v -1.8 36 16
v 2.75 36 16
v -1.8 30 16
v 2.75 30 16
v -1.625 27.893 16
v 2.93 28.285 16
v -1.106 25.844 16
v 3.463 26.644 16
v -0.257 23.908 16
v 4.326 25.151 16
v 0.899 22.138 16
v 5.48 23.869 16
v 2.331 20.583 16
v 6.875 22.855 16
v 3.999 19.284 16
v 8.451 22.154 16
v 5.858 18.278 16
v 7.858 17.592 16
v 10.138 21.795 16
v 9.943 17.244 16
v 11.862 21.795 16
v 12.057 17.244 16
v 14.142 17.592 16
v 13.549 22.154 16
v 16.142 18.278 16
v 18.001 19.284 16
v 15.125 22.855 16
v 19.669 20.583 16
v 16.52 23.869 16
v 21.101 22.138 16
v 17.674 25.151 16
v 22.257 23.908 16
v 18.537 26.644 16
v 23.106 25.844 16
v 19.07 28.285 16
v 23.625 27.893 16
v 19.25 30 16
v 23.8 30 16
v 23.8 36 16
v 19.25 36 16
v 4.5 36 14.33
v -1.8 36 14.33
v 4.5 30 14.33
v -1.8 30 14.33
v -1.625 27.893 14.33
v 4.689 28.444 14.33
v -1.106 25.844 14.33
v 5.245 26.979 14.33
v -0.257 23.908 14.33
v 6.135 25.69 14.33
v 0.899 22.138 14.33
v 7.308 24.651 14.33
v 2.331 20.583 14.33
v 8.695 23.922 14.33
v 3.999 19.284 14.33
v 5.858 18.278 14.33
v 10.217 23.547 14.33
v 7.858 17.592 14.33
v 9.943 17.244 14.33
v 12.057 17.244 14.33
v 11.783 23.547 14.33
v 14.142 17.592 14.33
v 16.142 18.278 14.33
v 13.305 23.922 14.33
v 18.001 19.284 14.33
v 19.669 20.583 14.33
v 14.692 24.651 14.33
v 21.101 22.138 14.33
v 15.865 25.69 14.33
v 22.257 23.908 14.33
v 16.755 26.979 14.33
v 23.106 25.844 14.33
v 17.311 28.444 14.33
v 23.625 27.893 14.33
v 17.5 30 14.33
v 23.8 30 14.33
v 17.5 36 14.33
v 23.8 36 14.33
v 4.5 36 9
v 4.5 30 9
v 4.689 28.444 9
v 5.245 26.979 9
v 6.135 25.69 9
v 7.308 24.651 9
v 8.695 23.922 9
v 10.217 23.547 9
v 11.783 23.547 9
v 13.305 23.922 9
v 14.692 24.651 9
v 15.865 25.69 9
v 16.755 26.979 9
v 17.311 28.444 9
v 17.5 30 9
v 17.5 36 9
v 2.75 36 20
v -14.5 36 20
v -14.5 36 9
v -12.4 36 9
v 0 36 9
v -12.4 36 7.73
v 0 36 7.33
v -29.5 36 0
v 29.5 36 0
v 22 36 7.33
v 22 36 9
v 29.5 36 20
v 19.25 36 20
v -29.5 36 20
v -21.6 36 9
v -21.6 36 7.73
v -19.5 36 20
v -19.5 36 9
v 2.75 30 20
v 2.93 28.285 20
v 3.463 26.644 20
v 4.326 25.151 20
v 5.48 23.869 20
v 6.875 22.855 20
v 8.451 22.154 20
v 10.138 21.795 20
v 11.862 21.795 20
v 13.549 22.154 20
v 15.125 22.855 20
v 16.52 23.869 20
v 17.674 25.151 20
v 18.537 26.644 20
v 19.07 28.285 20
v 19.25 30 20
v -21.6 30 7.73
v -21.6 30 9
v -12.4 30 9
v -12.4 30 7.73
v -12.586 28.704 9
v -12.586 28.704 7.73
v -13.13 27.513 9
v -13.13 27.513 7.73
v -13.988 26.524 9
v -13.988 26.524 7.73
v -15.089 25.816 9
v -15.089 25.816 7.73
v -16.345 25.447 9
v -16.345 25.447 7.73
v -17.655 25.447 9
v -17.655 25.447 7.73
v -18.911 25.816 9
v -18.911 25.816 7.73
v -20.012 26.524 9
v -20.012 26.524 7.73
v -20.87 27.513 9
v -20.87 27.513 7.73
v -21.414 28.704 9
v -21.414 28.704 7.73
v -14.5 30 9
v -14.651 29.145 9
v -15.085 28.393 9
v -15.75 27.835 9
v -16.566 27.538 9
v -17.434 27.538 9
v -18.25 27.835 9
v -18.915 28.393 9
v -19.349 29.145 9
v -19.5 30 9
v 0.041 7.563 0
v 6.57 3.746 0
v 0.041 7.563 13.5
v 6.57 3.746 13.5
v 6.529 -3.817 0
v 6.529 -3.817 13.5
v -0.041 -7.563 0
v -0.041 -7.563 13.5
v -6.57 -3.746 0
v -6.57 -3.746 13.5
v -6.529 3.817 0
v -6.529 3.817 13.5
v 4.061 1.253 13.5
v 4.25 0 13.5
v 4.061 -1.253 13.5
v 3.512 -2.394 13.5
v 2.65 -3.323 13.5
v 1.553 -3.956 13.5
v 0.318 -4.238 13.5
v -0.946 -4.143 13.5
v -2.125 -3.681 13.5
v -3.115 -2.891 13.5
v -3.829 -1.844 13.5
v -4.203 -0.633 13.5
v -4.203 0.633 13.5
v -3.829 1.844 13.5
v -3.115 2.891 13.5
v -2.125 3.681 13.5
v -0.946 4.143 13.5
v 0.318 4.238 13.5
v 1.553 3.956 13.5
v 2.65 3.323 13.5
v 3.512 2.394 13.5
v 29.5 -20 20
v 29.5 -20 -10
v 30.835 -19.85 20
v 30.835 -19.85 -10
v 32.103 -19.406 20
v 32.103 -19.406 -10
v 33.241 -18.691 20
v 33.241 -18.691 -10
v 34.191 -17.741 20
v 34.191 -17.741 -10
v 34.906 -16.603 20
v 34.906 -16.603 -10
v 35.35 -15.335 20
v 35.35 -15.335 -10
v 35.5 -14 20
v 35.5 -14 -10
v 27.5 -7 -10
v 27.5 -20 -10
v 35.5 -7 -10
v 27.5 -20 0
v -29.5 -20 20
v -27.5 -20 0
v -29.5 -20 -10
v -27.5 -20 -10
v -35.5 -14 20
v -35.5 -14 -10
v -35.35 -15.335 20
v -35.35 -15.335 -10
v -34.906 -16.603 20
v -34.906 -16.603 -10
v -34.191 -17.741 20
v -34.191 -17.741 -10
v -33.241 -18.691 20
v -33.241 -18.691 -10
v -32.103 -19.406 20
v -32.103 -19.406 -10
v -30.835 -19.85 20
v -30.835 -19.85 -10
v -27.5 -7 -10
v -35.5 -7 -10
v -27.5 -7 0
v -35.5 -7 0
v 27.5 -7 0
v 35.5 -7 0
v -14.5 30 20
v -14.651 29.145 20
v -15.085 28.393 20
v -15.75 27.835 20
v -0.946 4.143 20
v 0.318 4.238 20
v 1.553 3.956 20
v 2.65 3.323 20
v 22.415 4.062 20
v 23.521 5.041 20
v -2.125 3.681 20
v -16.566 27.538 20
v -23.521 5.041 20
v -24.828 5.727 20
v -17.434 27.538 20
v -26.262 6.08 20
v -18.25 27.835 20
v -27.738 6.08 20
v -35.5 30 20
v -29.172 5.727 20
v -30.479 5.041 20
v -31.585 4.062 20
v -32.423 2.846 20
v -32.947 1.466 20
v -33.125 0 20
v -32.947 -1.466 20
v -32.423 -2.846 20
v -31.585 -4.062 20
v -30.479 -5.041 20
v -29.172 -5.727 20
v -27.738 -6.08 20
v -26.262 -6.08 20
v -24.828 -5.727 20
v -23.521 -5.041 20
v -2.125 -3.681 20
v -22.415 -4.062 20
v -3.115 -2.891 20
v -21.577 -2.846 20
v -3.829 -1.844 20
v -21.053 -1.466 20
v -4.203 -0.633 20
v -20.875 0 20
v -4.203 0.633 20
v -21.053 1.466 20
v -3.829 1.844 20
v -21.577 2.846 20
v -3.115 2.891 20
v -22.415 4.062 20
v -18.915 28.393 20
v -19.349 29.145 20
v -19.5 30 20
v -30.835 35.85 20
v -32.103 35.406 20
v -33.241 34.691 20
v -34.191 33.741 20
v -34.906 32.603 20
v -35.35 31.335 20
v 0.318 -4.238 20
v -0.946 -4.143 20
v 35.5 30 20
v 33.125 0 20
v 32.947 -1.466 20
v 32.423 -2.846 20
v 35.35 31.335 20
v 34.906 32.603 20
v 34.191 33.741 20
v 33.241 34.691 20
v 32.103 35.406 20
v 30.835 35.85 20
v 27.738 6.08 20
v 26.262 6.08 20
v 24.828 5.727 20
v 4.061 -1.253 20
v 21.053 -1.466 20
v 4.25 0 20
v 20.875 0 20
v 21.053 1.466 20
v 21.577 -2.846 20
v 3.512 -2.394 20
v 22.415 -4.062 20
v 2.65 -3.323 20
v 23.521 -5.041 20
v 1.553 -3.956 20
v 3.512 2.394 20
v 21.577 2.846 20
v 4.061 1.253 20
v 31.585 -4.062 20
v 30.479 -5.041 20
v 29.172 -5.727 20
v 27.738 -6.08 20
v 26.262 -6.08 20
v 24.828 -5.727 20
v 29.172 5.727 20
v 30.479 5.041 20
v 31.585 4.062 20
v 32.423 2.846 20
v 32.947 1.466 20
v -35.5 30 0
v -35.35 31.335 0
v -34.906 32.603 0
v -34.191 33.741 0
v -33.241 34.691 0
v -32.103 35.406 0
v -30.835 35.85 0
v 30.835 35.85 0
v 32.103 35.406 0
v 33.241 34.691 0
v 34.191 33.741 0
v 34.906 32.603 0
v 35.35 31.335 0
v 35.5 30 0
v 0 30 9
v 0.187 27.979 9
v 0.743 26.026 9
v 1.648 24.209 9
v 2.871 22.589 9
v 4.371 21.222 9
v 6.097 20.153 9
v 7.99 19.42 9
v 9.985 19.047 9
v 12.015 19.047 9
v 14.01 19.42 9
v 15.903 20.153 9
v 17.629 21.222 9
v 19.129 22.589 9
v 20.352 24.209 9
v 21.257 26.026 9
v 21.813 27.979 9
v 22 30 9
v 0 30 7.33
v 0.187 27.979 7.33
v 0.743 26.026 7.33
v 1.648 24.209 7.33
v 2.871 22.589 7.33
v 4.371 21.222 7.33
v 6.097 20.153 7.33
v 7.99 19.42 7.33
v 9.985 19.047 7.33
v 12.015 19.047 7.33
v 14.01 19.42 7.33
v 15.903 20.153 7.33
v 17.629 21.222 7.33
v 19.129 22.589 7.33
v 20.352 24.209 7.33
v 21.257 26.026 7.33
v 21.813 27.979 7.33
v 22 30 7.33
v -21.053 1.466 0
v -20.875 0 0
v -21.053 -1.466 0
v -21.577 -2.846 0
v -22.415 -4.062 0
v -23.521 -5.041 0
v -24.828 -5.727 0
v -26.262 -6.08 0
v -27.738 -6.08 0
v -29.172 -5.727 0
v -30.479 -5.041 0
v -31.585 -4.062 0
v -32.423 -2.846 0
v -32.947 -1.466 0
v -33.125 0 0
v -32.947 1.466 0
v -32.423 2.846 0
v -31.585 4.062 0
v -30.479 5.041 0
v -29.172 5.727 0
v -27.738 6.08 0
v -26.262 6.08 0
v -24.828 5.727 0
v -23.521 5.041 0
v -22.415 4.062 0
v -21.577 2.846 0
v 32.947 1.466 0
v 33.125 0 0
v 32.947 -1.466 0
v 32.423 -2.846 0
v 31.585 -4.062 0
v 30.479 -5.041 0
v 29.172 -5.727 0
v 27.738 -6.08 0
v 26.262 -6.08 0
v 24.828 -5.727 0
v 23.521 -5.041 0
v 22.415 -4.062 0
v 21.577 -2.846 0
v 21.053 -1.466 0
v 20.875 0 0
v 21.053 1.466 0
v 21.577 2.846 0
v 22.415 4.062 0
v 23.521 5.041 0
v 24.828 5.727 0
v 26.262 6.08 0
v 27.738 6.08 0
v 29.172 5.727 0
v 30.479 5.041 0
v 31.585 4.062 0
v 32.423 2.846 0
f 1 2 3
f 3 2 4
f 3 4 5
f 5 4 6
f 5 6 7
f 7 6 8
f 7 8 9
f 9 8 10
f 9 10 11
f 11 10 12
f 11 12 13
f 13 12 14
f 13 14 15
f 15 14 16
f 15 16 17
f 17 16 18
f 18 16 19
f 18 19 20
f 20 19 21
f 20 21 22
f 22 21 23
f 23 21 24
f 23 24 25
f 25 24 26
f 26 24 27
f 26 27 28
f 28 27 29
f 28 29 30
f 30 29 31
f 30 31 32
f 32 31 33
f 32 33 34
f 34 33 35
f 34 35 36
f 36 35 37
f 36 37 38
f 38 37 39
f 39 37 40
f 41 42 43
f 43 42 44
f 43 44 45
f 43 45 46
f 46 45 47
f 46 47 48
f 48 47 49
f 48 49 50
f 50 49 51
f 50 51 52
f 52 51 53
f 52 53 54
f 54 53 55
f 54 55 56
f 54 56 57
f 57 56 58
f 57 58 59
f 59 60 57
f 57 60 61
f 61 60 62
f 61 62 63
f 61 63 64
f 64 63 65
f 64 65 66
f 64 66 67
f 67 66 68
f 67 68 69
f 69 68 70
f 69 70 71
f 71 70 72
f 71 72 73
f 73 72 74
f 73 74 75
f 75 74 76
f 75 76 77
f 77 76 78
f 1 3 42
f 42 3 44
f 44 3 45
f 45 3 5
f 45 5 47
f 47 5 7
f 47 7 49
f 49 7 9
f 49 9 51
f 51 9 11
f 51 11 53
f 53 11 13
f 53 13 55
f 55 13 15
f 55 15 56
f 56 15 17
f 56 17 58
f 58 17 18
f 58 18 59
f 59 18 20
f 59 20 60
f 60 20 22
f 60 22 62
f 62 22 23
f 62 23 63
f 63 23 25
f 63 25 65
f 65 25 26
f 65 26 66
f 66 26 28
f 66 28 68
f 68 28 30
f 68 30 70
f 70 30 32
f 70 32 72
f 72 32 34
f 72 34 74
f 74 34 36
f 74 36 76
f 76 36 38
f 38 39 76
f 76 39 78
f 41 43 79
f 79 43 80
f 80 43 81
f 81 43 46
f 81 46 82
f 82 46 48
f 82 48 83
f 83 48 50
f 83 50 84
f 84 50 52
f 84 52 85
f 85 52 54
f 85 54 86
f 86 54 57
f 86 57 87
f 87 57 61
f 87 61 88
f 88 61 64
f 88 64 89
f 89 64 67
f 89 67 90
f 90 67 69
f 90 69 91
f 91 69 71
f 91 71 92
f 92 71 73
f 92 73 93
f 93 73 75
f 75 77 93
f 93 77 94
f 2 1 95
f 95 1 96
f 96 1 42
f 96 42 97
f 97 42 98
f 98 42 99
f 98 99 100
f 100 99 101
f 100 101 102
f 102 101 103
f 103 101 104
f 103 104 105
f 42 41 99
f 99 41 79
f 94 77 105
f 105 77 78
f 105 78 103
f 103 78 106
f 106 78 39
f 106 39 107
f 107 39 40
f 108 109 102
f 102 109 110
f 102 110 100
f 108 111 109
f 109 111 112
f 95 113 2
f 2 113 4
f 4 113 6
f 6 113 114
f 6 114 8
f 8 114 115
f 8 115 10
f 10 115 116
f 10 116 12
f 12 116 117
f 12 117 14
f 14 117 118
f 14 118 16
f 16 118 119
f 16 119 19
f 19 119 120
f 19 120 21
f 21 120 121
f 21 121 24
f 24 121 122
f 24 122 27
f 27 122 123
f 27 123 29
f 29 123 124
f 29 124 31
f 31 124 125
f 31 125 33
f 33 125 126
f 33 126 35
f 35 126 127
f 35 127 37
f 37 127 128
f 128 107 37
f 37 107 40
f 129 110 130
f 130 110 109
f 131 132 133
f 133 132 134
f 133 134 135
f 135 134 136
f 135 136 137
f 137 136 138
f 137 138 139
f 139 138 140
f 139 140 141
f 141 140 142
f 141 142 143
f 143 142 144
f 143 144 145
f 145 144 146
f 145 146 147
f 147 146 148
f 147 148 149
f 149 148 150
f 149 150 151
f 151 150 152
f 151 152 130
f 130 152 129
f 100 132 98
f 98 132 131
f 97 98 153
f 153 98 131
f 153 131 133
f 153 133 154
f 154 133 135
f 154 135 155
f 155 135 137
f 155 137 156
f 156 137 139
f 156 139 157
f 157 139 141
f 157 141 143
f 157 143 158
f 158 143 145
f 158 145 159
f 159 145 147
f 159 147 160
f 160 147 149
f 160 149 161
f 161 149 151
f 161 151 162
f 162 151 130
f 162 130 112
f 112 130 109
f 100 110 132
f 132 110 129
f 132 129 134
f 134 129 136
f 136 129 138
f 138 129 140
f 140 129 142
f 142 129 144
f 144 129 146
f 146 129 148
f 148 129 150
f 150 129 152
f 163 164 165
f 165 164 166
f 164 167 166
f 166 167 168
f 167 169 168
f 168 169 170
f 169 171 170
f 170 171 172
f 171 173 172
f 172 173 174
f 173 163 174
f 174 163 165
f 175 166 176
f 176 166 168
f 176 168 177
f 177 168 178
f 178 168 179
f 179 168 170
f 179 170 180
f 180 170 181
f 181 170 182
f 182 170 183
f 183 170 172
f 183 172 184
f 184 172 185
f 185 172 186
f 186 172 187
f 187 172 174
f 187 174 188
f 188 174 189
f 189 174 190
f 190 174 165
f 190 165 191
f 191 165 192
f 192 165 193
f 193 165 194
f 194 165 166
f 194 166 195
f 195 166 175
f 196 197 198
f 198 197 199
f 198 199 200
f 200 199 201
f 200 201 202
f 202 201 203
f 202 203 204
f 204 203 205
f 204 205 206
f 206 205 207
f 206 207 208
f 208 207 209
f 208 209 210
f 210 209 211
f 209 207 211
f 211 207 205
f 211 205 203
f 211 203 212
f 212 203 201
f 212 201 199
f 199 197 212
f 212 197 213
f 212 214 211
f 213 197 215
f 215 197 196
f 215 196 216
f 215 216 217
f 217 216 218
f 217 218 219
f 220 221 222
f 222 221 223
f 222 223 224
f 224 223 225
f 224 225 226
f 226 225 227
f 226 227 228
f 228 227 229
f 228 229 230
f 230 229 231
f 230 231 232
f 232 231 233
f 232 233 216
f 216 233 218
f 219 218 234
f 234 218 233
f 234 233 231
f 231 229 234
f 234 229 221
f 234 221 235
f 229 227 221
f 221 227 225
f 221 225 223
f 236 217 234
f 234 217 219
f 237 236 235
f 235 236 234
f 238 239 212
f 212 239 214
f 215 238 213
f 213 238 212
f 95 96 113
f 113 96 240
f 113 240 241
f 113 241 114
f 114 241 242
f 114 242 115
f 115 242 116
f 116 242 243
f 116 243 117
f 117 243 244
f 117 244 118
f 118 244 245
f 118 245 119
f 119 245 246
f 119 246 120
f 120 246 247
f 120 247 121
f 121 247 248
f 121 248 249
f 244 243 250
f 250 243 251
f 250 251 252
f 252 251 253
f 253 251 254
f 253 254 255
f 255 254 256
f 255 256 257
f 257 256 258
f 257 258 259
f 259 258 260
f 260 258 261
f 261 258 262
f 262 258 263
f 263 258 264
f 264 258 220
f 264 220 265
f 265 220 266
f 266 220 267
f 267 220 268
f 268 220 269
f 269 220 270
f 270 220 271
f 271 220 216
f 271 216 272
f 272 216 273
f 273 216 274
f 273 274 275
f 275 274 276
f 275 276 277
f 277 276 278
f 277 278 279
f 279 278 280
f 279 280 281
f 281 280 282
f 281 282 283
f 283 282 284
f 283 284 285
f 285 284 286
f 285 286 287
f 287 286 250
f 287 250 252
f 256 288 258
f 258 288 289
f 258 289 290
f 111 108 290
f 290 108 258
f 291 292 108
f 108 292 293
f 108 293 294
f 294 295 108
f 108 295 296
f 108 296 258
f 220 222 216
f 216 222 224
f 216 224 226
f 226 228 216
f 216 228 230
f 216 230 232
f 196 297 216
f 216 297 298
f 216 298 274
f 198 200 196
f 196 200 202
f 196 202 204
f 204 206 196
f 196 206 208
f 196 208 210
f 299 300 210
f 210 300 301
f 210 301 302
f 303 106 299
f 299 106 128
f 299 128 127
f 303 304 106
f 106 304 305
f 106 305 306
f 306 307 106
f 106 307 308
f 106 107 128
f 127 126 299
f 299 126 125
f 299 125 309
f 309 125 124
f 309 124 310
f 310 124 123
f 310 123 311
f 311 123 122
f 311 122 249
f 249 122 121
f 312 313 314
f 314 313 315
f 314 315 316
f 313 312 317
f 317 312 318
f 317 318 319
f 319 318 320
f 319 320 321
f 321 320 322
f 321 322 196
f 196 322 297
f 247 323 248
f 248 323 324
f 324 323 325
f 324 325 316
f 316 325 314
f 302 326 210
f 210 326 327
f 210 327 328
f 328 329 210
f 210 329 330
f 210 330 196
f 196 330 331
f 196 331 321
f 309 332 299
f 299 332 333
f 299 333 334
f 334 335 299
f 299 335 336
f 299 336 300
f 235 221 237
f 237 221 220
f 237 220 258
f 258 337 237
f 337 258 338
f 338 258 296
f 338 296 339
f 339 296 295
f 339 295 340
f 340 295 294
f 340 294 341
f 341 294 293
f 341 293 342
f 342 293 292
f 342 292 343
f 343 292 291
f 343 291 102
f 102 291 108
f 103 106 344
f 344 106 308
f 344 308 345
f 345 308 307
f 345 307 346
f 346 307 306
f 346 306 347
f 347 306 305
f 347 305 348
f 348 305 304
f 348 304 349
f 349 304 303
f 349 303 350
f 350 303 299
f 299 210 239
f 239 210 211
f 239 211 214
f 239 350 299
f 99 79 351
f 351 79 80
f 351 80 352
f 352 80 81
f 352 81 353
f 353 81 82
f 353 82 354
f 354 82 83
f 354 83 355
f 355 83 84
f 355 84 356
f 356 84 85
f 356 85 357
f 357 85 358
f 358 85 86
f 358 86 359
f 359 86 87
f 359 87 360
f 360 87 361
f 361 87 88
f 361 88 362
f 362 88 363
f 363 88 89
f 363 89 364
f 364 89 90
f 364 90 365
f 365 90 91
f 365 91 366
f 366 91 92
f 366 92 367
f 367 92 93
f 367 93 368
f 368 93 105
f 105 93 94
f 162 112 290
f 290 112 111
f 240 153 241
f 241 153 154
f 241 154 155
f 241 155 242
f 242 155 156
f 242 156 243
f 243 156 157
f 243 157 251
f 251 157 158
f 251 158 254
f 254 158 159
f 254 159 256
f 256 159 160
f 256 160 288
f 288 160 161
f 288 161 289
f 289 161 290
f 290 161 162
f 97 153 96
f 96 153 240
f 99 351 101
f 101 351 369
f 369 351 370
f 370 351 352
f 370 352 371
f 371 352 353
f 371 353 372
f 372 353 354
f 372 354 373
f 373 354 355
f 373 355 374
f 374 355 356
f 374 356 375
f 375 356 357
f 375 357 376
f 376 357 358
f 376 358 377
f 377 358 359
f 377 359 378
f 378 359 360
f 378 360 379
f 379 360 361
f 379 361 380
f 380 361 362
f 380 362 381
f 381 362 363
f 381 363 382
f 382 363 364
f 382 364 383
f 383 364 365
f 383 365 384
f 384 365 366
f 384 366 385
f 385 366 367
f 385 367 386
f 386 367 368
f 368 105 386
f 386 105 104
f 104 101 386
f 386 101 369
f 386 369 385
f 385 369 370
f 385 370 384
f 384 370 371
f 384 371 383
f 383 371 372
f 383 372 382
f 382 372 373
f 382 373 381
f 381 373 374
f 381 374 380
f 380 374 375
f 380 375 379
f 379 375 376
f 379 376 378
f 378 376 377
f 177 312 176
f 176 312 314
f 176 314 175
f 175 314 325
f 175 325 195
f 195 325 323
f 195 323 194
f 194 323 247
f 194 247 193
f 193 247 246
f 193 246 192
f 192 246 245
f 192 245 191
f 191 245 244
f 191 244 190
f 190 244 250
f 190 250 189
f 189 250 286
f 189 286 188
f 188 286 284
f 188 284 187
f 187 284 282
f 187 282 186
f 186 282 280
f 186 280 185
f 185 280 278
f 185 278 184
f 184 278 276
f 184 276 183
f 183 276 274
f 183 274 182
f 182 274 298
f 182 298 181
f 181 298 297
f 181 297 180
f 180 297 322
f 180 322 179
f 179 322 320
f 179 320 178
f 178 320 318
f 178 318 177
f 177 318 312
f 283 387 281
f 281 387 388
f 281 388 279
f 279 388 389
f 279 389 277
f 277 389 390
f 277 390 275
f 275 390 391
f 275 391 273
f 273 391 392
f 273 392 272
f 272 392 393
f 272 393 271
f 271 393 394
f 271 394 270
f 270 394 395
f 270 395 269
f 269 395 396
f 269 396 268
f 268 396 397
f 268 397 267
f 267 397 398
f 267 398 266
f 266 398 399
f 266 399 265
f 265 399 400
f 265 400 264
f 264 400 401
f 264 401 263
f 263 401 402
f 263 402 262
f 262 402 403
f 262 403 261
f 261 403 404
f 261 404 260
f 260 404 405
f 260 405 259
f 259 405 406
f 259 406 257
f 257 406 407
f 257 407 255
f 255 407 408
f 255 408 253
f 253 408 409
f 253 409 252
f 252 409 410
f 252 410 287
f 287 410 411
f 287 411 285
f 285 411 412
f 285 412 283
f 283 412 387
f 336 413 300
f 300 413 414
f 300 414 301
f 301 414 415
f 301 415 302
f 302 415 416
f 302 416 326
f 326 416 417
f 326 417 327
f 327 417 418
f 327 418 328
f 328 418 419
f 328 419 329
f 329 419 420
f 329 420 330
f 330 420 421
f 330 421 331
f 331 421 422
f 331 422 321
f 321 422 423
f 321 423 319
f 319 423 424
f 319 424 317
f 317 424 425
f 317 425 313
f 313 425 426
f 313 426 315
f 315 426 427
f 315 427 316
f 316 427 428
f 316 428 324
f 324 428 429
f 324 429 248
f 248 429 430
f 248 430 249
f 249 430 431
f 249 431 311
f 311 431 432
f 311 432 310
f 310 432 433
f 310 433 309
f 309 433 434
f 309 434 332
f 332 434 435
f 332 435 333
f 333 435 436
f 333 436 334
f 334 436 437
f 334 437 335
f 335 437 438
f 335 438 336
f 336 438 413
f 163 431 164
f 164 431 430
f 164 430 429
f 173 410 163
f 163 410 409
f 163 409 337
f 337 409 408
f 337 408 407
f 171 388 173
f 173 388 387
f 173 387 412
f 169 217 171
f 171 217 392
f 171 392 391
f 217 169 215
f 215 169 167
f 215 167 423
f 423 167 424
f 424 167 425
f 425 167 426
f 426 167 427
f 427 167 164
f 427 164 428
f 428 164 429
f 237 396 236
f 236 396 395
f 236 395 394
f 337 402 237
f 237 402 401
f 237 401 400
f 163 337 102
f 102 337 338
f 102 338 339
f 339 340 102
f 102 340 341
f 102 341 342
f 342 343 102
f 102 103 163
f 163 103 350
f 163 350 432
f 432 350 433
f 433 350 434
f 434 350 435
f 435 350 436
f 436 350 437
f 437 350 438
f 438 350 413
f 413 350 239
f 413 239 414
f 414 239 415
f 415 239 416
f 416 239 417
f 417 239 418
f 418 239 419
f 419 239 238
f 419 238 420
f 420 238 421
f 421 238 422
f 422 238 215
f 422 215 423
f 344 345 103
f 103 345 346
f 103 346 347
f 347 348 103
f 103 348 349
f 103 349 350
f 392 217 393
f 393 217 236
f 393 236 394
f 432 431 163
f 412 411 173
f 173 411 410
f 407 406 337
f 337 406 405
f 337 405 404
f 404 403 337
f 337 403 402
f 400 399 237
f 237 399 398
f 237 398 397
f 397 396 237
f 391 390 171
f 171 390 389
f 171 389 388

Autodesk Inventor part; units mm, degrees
ref_plane "YZ Plane" through (0, 0, 0) normal (1, 0, 0) x (0, 1, 0)
ref_plane "XZ Plane" through (0, 0, 0) normal (0, 1, 0) x (-1, 0, 0)
ref_plane "XY Plane" through (0, 0, 0) normal (0, 0, 1) x (1, 0, 0)
sketch "Skizze1" plane through (0, 0, 0) normal (0, 0, 1) x (1, 0, 0)
  line L0 (-35.5, 36) -> (35.5, 36)
  line L1 (35.5, 36) -> (35.5, -20)
  line L2 (35.5, -20) -> (-35.5, -20)
  line L3 (-35.5, -20) -> (-35.5, 36)
  circle A0 centre (0, 0) radius 4.25
  circle A1 centre (-27, 0) radius 6.125
  circle A2 centre (27, 0) radius 6.125
  point P0 (0, -20)
  point P1 (35.5, 8)
  dimension "d0" = 71
  dimension "d1" = 56
  dimension "d2" = 20
  dimension "d3" = 35.5
  dimension "d4" = 8.5
  dimension "d5" = 12.25
  dimension "d6" = 12.25
  dimension "d7" = 27
  dimension "d8" = 27
extrude "Extrusion1" add sketch "Skizze1" along normal blind 9
sketch "Skizze2" plane through (0, 0, 9) normal (0, 0, 1) x (1, 0, 0)
  arc A0 (-22.5, 30) -> (-11.5, 30) centre (-17, 30) ccw
  arc A1 (0, 30) -> (22, 30) centre (11, 30) ccw
  line L0 (35.5, 36) -> (-35.5, 36) projected
  line L1 (-35.5, 36) -> (-35.5, -20) projected
  line L2 (35.5, -20) -> (35.5, 36) projected
  line L3 (-22.5, 30) -> (-22.5, 36)
  line L4 (-11.5, 30) -> (-11.5, 36)
  line L5 (0, 30) -> (0, 36)
  line L6 (22, 30) -> (22, 36)
  point P0 (0, 0)
  dimension "d11" = 11
  dimension "d12" = 22
  dimension "d13" = 6
  dimension "d14" = 6
  dimension "d15" = 18.5
  dimension "d16" = 24.5
extrude "Extrusion2" cut sketch "Skizze2" against normal blind 1.67
sketch "Skizze3" plane through (0, 0, 9) normal (0, 0, 1) x (1, 0, 0)
  line L0 (-22.5, 36) -> (-35.5, 36) projected
  line L1 (35.5, 36) -> (35.5, -20)
  line L2 (35.5, -20) -> (-35.5, -20)
  line L3 (-35.5, -20) -> (-35.5, 36)
  circle A0 centre (-27, 0) radius 6.125
  circle A1 centre (0, 0) radius 4.25
  circle A2 centre (27, 0) radius 6.125
  circle A3 centre (27, 0) radius 6.125 projected
  circle A4 centre (-27, 0) radius 6.125 projected
  arc A5 (-19.5, 30) -> (-14.5, 30) centre (-17, 30) ccw
  arc A6 (-22.5, 30) -> (-11.5, 30) centre (-17, 30) ccw projected
  arc A7 (4.5, 30) -> (17.5, 30) centre (11, 30) ccw
  arc A8 (0, 30) -> (22, 30) centre (11, 30) ccw projected
  line L4 (-19.5, 30) -> (-19.5, 36)
  line L5 (-14.5, 30) -> (-14.5, 36)
  line L6 (4.5, 30) -> (4.5, 36)
  line L7 (17.5, 30) -> (17.5, 36)
  line L8 (17.5, 36) -> (35.5, 36)
  line L9 (-35.5, 36) -> (-19.5, 36)
  line L10 (-14.5, 36) -> (4.5, 36)
  dimension "d19" = 71
  dimension "d20" = 56
  dimension "d21" = 12.25
  dimension "d22" = 12.25
  dimension "d23" = 0
  dimension "d24" = 0
  dimension "d25" = 5
  dimension "d26" = 0
  dimension "d27" = 13
  dimension "d28" = 0
  dimension "d29" = 0
  dimension "d30" = 0
extrude "Extrusion3" add sketch "Skizze3" along normal blind 11
fillet "Rundung1" radius 6 2 edges at (35.5, 36, 10) (-35.5, 36, 10)
fillet "Rundung2" radius 3 2 edges at (-35.5, -20, 10) (35.5, -20, 10)
sketch "Skizze4" plane through (0, 0, 20) normal (0, 0, 1) x (1, 0, 0)
  line L0 (-32.5, -20) -> (32.5, -20) projected
  line L1 (-35.5, 30) -> (-35.5, -17) projected
  line L2 (-27.5, -20) -> (-35.5, -20)
  line L3 (-35.5, -20) -> (-35.5, -7)
  line L4 (-35.5, -7) -> (-27.5, -7)
  line L5 (-27.5, -7) -> (-27.5, -20)
  line L6 (27.5, -20) -> (35.5, -20)
  line L7 (35.5, -20) -> (35.5, -7)
  line L8 (35.5, -7) -> (27.5, -7)
  line L9 (27.5, -7) -> (27.5, -20)
  line L10 (35.5, -17) -> (35.5, 30) projected
  point P0 (0, 0)
  point P1 (-35.5, -17)
  dimension "d35" = 8
  dimension "d36" = 13
  dimension "d37" = 8
  dimension "d38" = 0
sketch "Skizze5" plane through (0, 0, 0) normal (0, 0, -1) x (-1, 0, 0)
  line L0 (32.5, -20) -> (-32.5, -20) projected
  line L1 (35.5, 30) -> (35.5, -17) projected
  line L2 (27.5, -20) -> (35.5, -20)
  line L3 (35.5, -20) -> (35.5, -7)
  line L4 (35.5, -7) -> (27.5, -7)
  line L5 (27.5, -7) -> (27.5, -20)
  line L6 (-35.5, -14) -> (-35.5, -7) projected
  line L7 (-35.5, -7) -> (-27.5, -7)
  line L8 (-27.5, -7) -> (-27.5, -20)
  line L9 (-27.5, -20) -> (-35.5, -20)
  line L10 (-35.5, -20) -> (-35.5, -7)
  point P0 (0, 0)
  point P1 (29.5, -20)
  point P2 (-29.5, -20)
  point P3 (35.5, -14)
  point P4 (29.5, -20)
  point P5 (35.5, -14)
  point P6 (-29.5, -20)
  dimension "d42" = 13
  dimension "d43" = 8
  dimension "d44" = 8
extrude "Extrusion5" add sketch "Skizze5" along normal blind 10
fillet "Rundung4" radius 6 2 edges at (-35.5, -20, -5) (35.5, -20, -5)
sketch "Skizze6" plane through (0, 0, 0) normal (0, 0, -1) x (-1, 0, 0)
  line L0 (6.5705, -3.7459) -> (0.0412, -7.5632)
  line L1 (0.0412, -7.5632) -> (-6.5293, -3.8173)
  line L2 (-6.5293, -3.8173) -> (-6.5705, 3.7459)
  line L3 (-6.5705, 3.7459) -> (-0.0412, 7.5632)
  line L4 (-0.0412, 7.5632) -> (6.5293, 3.8173)
  line L5 (6.5293, 3.8173) -> (6.5705, -3.7459)
  point P0 (0, 0)
  point P1 (0, 0)
  point P2 (-6.5499, -0.0357)
  dimension "d48" = 13.1
extrude "Extrusion6" cut sketch "Skizze6" against normal blind 13.5
sketch "Skizze7" plane through (0, 0, 7.33) normal (0, 0, 1) x (1, 0, 0)
  arc A0 (-22.5, 30) -> (-11.5, 30) centre (-17, 30) ccw projected
  line L0 (-22.5, 30) -> (-22.5, 36) projected
  line L1 (-11.5, 36) -> (-11.5, 30) projected
  line L2 (-22.5, 36) -> (-11.5, 36) projected
  point P0 (0, 0)
extrude "Extrusion7" add sketch "Skizze7" along normal blind 0.4
sketch "Skizze8" plane through (0, 0, 7.73) normal (0, 0, 1) x (1, 0, 0)
  arc A0 (-22.5, 30) -> (-11.5, 30) centre (-17, 30) ccw projected
  arc A1 (-21.6, 30) -> (-12.4, 30) centre (-17, 30) ccw
  line L0 (-21.6, 30) -> (-21.6, 36)
  line L1 (-11.5, 36) -> (-22.5, 36) projected
  line L2 (-12.4, 30) -> (-12.4, 36)
  line L3 (-22.5, 30) -> (-22.5, 36) projected
  line L4 (-11.5, 36) -> (-11.5, 30) projected
  line L5 (4.5, 36) -> (-14.5, 36) projected
  line L6 (-19.5, 36) -> (-29.5, 36) projected
  point P0 (0, 0)
  dimension "d53" = 9.2
extrude "Extrusion8" add sketch "Skizze8" along normal blind 1.27 contours L3 L1 L0 A1 L2 L4 A0
sketch "Skizze9" plane through (0, 0, 20) normal (0, 0, 1) x (1, 0, 0)
  arc A0 (0, 30) -> (22, 30) centre (11, 30) ccw projected
  line L0 (2.75, 30) -> (2.75, 36)
  line L1 (0, 36) -> (22, 36) projected
  line L2 (19.25, 30) -> (19.25, 36)
  arc A1 (2.75, 30) -> (19.25, 30) centre (11, 30) ccw
  point P0 (0, 0)
extrude "Extrusion9" cut sketch "Skizze9" against normal blind 4
sketch "Skizze10" plane through (0, 0, 16) normal (0, 0, 1) x (1, 0, 0)
  arc A0 (0, 30) -> (22, 30) centre (11, 30) ccw projected
  line L0 (-1.8, 30) -> (-1.8, 36)
  line L1 (0, 36) -> (22, 36) projected
  line L2 (2.75, 36) -> (-14.5, 36) projected
  line L3 (29.5, 36) -> (19.25, 36) projected
  line L4 (23.8, 30) -> (23.8, 36)
  arc A1 (-1.8, 30) -> (23.8, 30) centre (11, 30) ccw
  point P0 (0, 0)
extrude "Extrusion10" cut sketch "Skizze10" against normal blind 1.67
properties part number "Guideteil_Spritzenpumpe001"
